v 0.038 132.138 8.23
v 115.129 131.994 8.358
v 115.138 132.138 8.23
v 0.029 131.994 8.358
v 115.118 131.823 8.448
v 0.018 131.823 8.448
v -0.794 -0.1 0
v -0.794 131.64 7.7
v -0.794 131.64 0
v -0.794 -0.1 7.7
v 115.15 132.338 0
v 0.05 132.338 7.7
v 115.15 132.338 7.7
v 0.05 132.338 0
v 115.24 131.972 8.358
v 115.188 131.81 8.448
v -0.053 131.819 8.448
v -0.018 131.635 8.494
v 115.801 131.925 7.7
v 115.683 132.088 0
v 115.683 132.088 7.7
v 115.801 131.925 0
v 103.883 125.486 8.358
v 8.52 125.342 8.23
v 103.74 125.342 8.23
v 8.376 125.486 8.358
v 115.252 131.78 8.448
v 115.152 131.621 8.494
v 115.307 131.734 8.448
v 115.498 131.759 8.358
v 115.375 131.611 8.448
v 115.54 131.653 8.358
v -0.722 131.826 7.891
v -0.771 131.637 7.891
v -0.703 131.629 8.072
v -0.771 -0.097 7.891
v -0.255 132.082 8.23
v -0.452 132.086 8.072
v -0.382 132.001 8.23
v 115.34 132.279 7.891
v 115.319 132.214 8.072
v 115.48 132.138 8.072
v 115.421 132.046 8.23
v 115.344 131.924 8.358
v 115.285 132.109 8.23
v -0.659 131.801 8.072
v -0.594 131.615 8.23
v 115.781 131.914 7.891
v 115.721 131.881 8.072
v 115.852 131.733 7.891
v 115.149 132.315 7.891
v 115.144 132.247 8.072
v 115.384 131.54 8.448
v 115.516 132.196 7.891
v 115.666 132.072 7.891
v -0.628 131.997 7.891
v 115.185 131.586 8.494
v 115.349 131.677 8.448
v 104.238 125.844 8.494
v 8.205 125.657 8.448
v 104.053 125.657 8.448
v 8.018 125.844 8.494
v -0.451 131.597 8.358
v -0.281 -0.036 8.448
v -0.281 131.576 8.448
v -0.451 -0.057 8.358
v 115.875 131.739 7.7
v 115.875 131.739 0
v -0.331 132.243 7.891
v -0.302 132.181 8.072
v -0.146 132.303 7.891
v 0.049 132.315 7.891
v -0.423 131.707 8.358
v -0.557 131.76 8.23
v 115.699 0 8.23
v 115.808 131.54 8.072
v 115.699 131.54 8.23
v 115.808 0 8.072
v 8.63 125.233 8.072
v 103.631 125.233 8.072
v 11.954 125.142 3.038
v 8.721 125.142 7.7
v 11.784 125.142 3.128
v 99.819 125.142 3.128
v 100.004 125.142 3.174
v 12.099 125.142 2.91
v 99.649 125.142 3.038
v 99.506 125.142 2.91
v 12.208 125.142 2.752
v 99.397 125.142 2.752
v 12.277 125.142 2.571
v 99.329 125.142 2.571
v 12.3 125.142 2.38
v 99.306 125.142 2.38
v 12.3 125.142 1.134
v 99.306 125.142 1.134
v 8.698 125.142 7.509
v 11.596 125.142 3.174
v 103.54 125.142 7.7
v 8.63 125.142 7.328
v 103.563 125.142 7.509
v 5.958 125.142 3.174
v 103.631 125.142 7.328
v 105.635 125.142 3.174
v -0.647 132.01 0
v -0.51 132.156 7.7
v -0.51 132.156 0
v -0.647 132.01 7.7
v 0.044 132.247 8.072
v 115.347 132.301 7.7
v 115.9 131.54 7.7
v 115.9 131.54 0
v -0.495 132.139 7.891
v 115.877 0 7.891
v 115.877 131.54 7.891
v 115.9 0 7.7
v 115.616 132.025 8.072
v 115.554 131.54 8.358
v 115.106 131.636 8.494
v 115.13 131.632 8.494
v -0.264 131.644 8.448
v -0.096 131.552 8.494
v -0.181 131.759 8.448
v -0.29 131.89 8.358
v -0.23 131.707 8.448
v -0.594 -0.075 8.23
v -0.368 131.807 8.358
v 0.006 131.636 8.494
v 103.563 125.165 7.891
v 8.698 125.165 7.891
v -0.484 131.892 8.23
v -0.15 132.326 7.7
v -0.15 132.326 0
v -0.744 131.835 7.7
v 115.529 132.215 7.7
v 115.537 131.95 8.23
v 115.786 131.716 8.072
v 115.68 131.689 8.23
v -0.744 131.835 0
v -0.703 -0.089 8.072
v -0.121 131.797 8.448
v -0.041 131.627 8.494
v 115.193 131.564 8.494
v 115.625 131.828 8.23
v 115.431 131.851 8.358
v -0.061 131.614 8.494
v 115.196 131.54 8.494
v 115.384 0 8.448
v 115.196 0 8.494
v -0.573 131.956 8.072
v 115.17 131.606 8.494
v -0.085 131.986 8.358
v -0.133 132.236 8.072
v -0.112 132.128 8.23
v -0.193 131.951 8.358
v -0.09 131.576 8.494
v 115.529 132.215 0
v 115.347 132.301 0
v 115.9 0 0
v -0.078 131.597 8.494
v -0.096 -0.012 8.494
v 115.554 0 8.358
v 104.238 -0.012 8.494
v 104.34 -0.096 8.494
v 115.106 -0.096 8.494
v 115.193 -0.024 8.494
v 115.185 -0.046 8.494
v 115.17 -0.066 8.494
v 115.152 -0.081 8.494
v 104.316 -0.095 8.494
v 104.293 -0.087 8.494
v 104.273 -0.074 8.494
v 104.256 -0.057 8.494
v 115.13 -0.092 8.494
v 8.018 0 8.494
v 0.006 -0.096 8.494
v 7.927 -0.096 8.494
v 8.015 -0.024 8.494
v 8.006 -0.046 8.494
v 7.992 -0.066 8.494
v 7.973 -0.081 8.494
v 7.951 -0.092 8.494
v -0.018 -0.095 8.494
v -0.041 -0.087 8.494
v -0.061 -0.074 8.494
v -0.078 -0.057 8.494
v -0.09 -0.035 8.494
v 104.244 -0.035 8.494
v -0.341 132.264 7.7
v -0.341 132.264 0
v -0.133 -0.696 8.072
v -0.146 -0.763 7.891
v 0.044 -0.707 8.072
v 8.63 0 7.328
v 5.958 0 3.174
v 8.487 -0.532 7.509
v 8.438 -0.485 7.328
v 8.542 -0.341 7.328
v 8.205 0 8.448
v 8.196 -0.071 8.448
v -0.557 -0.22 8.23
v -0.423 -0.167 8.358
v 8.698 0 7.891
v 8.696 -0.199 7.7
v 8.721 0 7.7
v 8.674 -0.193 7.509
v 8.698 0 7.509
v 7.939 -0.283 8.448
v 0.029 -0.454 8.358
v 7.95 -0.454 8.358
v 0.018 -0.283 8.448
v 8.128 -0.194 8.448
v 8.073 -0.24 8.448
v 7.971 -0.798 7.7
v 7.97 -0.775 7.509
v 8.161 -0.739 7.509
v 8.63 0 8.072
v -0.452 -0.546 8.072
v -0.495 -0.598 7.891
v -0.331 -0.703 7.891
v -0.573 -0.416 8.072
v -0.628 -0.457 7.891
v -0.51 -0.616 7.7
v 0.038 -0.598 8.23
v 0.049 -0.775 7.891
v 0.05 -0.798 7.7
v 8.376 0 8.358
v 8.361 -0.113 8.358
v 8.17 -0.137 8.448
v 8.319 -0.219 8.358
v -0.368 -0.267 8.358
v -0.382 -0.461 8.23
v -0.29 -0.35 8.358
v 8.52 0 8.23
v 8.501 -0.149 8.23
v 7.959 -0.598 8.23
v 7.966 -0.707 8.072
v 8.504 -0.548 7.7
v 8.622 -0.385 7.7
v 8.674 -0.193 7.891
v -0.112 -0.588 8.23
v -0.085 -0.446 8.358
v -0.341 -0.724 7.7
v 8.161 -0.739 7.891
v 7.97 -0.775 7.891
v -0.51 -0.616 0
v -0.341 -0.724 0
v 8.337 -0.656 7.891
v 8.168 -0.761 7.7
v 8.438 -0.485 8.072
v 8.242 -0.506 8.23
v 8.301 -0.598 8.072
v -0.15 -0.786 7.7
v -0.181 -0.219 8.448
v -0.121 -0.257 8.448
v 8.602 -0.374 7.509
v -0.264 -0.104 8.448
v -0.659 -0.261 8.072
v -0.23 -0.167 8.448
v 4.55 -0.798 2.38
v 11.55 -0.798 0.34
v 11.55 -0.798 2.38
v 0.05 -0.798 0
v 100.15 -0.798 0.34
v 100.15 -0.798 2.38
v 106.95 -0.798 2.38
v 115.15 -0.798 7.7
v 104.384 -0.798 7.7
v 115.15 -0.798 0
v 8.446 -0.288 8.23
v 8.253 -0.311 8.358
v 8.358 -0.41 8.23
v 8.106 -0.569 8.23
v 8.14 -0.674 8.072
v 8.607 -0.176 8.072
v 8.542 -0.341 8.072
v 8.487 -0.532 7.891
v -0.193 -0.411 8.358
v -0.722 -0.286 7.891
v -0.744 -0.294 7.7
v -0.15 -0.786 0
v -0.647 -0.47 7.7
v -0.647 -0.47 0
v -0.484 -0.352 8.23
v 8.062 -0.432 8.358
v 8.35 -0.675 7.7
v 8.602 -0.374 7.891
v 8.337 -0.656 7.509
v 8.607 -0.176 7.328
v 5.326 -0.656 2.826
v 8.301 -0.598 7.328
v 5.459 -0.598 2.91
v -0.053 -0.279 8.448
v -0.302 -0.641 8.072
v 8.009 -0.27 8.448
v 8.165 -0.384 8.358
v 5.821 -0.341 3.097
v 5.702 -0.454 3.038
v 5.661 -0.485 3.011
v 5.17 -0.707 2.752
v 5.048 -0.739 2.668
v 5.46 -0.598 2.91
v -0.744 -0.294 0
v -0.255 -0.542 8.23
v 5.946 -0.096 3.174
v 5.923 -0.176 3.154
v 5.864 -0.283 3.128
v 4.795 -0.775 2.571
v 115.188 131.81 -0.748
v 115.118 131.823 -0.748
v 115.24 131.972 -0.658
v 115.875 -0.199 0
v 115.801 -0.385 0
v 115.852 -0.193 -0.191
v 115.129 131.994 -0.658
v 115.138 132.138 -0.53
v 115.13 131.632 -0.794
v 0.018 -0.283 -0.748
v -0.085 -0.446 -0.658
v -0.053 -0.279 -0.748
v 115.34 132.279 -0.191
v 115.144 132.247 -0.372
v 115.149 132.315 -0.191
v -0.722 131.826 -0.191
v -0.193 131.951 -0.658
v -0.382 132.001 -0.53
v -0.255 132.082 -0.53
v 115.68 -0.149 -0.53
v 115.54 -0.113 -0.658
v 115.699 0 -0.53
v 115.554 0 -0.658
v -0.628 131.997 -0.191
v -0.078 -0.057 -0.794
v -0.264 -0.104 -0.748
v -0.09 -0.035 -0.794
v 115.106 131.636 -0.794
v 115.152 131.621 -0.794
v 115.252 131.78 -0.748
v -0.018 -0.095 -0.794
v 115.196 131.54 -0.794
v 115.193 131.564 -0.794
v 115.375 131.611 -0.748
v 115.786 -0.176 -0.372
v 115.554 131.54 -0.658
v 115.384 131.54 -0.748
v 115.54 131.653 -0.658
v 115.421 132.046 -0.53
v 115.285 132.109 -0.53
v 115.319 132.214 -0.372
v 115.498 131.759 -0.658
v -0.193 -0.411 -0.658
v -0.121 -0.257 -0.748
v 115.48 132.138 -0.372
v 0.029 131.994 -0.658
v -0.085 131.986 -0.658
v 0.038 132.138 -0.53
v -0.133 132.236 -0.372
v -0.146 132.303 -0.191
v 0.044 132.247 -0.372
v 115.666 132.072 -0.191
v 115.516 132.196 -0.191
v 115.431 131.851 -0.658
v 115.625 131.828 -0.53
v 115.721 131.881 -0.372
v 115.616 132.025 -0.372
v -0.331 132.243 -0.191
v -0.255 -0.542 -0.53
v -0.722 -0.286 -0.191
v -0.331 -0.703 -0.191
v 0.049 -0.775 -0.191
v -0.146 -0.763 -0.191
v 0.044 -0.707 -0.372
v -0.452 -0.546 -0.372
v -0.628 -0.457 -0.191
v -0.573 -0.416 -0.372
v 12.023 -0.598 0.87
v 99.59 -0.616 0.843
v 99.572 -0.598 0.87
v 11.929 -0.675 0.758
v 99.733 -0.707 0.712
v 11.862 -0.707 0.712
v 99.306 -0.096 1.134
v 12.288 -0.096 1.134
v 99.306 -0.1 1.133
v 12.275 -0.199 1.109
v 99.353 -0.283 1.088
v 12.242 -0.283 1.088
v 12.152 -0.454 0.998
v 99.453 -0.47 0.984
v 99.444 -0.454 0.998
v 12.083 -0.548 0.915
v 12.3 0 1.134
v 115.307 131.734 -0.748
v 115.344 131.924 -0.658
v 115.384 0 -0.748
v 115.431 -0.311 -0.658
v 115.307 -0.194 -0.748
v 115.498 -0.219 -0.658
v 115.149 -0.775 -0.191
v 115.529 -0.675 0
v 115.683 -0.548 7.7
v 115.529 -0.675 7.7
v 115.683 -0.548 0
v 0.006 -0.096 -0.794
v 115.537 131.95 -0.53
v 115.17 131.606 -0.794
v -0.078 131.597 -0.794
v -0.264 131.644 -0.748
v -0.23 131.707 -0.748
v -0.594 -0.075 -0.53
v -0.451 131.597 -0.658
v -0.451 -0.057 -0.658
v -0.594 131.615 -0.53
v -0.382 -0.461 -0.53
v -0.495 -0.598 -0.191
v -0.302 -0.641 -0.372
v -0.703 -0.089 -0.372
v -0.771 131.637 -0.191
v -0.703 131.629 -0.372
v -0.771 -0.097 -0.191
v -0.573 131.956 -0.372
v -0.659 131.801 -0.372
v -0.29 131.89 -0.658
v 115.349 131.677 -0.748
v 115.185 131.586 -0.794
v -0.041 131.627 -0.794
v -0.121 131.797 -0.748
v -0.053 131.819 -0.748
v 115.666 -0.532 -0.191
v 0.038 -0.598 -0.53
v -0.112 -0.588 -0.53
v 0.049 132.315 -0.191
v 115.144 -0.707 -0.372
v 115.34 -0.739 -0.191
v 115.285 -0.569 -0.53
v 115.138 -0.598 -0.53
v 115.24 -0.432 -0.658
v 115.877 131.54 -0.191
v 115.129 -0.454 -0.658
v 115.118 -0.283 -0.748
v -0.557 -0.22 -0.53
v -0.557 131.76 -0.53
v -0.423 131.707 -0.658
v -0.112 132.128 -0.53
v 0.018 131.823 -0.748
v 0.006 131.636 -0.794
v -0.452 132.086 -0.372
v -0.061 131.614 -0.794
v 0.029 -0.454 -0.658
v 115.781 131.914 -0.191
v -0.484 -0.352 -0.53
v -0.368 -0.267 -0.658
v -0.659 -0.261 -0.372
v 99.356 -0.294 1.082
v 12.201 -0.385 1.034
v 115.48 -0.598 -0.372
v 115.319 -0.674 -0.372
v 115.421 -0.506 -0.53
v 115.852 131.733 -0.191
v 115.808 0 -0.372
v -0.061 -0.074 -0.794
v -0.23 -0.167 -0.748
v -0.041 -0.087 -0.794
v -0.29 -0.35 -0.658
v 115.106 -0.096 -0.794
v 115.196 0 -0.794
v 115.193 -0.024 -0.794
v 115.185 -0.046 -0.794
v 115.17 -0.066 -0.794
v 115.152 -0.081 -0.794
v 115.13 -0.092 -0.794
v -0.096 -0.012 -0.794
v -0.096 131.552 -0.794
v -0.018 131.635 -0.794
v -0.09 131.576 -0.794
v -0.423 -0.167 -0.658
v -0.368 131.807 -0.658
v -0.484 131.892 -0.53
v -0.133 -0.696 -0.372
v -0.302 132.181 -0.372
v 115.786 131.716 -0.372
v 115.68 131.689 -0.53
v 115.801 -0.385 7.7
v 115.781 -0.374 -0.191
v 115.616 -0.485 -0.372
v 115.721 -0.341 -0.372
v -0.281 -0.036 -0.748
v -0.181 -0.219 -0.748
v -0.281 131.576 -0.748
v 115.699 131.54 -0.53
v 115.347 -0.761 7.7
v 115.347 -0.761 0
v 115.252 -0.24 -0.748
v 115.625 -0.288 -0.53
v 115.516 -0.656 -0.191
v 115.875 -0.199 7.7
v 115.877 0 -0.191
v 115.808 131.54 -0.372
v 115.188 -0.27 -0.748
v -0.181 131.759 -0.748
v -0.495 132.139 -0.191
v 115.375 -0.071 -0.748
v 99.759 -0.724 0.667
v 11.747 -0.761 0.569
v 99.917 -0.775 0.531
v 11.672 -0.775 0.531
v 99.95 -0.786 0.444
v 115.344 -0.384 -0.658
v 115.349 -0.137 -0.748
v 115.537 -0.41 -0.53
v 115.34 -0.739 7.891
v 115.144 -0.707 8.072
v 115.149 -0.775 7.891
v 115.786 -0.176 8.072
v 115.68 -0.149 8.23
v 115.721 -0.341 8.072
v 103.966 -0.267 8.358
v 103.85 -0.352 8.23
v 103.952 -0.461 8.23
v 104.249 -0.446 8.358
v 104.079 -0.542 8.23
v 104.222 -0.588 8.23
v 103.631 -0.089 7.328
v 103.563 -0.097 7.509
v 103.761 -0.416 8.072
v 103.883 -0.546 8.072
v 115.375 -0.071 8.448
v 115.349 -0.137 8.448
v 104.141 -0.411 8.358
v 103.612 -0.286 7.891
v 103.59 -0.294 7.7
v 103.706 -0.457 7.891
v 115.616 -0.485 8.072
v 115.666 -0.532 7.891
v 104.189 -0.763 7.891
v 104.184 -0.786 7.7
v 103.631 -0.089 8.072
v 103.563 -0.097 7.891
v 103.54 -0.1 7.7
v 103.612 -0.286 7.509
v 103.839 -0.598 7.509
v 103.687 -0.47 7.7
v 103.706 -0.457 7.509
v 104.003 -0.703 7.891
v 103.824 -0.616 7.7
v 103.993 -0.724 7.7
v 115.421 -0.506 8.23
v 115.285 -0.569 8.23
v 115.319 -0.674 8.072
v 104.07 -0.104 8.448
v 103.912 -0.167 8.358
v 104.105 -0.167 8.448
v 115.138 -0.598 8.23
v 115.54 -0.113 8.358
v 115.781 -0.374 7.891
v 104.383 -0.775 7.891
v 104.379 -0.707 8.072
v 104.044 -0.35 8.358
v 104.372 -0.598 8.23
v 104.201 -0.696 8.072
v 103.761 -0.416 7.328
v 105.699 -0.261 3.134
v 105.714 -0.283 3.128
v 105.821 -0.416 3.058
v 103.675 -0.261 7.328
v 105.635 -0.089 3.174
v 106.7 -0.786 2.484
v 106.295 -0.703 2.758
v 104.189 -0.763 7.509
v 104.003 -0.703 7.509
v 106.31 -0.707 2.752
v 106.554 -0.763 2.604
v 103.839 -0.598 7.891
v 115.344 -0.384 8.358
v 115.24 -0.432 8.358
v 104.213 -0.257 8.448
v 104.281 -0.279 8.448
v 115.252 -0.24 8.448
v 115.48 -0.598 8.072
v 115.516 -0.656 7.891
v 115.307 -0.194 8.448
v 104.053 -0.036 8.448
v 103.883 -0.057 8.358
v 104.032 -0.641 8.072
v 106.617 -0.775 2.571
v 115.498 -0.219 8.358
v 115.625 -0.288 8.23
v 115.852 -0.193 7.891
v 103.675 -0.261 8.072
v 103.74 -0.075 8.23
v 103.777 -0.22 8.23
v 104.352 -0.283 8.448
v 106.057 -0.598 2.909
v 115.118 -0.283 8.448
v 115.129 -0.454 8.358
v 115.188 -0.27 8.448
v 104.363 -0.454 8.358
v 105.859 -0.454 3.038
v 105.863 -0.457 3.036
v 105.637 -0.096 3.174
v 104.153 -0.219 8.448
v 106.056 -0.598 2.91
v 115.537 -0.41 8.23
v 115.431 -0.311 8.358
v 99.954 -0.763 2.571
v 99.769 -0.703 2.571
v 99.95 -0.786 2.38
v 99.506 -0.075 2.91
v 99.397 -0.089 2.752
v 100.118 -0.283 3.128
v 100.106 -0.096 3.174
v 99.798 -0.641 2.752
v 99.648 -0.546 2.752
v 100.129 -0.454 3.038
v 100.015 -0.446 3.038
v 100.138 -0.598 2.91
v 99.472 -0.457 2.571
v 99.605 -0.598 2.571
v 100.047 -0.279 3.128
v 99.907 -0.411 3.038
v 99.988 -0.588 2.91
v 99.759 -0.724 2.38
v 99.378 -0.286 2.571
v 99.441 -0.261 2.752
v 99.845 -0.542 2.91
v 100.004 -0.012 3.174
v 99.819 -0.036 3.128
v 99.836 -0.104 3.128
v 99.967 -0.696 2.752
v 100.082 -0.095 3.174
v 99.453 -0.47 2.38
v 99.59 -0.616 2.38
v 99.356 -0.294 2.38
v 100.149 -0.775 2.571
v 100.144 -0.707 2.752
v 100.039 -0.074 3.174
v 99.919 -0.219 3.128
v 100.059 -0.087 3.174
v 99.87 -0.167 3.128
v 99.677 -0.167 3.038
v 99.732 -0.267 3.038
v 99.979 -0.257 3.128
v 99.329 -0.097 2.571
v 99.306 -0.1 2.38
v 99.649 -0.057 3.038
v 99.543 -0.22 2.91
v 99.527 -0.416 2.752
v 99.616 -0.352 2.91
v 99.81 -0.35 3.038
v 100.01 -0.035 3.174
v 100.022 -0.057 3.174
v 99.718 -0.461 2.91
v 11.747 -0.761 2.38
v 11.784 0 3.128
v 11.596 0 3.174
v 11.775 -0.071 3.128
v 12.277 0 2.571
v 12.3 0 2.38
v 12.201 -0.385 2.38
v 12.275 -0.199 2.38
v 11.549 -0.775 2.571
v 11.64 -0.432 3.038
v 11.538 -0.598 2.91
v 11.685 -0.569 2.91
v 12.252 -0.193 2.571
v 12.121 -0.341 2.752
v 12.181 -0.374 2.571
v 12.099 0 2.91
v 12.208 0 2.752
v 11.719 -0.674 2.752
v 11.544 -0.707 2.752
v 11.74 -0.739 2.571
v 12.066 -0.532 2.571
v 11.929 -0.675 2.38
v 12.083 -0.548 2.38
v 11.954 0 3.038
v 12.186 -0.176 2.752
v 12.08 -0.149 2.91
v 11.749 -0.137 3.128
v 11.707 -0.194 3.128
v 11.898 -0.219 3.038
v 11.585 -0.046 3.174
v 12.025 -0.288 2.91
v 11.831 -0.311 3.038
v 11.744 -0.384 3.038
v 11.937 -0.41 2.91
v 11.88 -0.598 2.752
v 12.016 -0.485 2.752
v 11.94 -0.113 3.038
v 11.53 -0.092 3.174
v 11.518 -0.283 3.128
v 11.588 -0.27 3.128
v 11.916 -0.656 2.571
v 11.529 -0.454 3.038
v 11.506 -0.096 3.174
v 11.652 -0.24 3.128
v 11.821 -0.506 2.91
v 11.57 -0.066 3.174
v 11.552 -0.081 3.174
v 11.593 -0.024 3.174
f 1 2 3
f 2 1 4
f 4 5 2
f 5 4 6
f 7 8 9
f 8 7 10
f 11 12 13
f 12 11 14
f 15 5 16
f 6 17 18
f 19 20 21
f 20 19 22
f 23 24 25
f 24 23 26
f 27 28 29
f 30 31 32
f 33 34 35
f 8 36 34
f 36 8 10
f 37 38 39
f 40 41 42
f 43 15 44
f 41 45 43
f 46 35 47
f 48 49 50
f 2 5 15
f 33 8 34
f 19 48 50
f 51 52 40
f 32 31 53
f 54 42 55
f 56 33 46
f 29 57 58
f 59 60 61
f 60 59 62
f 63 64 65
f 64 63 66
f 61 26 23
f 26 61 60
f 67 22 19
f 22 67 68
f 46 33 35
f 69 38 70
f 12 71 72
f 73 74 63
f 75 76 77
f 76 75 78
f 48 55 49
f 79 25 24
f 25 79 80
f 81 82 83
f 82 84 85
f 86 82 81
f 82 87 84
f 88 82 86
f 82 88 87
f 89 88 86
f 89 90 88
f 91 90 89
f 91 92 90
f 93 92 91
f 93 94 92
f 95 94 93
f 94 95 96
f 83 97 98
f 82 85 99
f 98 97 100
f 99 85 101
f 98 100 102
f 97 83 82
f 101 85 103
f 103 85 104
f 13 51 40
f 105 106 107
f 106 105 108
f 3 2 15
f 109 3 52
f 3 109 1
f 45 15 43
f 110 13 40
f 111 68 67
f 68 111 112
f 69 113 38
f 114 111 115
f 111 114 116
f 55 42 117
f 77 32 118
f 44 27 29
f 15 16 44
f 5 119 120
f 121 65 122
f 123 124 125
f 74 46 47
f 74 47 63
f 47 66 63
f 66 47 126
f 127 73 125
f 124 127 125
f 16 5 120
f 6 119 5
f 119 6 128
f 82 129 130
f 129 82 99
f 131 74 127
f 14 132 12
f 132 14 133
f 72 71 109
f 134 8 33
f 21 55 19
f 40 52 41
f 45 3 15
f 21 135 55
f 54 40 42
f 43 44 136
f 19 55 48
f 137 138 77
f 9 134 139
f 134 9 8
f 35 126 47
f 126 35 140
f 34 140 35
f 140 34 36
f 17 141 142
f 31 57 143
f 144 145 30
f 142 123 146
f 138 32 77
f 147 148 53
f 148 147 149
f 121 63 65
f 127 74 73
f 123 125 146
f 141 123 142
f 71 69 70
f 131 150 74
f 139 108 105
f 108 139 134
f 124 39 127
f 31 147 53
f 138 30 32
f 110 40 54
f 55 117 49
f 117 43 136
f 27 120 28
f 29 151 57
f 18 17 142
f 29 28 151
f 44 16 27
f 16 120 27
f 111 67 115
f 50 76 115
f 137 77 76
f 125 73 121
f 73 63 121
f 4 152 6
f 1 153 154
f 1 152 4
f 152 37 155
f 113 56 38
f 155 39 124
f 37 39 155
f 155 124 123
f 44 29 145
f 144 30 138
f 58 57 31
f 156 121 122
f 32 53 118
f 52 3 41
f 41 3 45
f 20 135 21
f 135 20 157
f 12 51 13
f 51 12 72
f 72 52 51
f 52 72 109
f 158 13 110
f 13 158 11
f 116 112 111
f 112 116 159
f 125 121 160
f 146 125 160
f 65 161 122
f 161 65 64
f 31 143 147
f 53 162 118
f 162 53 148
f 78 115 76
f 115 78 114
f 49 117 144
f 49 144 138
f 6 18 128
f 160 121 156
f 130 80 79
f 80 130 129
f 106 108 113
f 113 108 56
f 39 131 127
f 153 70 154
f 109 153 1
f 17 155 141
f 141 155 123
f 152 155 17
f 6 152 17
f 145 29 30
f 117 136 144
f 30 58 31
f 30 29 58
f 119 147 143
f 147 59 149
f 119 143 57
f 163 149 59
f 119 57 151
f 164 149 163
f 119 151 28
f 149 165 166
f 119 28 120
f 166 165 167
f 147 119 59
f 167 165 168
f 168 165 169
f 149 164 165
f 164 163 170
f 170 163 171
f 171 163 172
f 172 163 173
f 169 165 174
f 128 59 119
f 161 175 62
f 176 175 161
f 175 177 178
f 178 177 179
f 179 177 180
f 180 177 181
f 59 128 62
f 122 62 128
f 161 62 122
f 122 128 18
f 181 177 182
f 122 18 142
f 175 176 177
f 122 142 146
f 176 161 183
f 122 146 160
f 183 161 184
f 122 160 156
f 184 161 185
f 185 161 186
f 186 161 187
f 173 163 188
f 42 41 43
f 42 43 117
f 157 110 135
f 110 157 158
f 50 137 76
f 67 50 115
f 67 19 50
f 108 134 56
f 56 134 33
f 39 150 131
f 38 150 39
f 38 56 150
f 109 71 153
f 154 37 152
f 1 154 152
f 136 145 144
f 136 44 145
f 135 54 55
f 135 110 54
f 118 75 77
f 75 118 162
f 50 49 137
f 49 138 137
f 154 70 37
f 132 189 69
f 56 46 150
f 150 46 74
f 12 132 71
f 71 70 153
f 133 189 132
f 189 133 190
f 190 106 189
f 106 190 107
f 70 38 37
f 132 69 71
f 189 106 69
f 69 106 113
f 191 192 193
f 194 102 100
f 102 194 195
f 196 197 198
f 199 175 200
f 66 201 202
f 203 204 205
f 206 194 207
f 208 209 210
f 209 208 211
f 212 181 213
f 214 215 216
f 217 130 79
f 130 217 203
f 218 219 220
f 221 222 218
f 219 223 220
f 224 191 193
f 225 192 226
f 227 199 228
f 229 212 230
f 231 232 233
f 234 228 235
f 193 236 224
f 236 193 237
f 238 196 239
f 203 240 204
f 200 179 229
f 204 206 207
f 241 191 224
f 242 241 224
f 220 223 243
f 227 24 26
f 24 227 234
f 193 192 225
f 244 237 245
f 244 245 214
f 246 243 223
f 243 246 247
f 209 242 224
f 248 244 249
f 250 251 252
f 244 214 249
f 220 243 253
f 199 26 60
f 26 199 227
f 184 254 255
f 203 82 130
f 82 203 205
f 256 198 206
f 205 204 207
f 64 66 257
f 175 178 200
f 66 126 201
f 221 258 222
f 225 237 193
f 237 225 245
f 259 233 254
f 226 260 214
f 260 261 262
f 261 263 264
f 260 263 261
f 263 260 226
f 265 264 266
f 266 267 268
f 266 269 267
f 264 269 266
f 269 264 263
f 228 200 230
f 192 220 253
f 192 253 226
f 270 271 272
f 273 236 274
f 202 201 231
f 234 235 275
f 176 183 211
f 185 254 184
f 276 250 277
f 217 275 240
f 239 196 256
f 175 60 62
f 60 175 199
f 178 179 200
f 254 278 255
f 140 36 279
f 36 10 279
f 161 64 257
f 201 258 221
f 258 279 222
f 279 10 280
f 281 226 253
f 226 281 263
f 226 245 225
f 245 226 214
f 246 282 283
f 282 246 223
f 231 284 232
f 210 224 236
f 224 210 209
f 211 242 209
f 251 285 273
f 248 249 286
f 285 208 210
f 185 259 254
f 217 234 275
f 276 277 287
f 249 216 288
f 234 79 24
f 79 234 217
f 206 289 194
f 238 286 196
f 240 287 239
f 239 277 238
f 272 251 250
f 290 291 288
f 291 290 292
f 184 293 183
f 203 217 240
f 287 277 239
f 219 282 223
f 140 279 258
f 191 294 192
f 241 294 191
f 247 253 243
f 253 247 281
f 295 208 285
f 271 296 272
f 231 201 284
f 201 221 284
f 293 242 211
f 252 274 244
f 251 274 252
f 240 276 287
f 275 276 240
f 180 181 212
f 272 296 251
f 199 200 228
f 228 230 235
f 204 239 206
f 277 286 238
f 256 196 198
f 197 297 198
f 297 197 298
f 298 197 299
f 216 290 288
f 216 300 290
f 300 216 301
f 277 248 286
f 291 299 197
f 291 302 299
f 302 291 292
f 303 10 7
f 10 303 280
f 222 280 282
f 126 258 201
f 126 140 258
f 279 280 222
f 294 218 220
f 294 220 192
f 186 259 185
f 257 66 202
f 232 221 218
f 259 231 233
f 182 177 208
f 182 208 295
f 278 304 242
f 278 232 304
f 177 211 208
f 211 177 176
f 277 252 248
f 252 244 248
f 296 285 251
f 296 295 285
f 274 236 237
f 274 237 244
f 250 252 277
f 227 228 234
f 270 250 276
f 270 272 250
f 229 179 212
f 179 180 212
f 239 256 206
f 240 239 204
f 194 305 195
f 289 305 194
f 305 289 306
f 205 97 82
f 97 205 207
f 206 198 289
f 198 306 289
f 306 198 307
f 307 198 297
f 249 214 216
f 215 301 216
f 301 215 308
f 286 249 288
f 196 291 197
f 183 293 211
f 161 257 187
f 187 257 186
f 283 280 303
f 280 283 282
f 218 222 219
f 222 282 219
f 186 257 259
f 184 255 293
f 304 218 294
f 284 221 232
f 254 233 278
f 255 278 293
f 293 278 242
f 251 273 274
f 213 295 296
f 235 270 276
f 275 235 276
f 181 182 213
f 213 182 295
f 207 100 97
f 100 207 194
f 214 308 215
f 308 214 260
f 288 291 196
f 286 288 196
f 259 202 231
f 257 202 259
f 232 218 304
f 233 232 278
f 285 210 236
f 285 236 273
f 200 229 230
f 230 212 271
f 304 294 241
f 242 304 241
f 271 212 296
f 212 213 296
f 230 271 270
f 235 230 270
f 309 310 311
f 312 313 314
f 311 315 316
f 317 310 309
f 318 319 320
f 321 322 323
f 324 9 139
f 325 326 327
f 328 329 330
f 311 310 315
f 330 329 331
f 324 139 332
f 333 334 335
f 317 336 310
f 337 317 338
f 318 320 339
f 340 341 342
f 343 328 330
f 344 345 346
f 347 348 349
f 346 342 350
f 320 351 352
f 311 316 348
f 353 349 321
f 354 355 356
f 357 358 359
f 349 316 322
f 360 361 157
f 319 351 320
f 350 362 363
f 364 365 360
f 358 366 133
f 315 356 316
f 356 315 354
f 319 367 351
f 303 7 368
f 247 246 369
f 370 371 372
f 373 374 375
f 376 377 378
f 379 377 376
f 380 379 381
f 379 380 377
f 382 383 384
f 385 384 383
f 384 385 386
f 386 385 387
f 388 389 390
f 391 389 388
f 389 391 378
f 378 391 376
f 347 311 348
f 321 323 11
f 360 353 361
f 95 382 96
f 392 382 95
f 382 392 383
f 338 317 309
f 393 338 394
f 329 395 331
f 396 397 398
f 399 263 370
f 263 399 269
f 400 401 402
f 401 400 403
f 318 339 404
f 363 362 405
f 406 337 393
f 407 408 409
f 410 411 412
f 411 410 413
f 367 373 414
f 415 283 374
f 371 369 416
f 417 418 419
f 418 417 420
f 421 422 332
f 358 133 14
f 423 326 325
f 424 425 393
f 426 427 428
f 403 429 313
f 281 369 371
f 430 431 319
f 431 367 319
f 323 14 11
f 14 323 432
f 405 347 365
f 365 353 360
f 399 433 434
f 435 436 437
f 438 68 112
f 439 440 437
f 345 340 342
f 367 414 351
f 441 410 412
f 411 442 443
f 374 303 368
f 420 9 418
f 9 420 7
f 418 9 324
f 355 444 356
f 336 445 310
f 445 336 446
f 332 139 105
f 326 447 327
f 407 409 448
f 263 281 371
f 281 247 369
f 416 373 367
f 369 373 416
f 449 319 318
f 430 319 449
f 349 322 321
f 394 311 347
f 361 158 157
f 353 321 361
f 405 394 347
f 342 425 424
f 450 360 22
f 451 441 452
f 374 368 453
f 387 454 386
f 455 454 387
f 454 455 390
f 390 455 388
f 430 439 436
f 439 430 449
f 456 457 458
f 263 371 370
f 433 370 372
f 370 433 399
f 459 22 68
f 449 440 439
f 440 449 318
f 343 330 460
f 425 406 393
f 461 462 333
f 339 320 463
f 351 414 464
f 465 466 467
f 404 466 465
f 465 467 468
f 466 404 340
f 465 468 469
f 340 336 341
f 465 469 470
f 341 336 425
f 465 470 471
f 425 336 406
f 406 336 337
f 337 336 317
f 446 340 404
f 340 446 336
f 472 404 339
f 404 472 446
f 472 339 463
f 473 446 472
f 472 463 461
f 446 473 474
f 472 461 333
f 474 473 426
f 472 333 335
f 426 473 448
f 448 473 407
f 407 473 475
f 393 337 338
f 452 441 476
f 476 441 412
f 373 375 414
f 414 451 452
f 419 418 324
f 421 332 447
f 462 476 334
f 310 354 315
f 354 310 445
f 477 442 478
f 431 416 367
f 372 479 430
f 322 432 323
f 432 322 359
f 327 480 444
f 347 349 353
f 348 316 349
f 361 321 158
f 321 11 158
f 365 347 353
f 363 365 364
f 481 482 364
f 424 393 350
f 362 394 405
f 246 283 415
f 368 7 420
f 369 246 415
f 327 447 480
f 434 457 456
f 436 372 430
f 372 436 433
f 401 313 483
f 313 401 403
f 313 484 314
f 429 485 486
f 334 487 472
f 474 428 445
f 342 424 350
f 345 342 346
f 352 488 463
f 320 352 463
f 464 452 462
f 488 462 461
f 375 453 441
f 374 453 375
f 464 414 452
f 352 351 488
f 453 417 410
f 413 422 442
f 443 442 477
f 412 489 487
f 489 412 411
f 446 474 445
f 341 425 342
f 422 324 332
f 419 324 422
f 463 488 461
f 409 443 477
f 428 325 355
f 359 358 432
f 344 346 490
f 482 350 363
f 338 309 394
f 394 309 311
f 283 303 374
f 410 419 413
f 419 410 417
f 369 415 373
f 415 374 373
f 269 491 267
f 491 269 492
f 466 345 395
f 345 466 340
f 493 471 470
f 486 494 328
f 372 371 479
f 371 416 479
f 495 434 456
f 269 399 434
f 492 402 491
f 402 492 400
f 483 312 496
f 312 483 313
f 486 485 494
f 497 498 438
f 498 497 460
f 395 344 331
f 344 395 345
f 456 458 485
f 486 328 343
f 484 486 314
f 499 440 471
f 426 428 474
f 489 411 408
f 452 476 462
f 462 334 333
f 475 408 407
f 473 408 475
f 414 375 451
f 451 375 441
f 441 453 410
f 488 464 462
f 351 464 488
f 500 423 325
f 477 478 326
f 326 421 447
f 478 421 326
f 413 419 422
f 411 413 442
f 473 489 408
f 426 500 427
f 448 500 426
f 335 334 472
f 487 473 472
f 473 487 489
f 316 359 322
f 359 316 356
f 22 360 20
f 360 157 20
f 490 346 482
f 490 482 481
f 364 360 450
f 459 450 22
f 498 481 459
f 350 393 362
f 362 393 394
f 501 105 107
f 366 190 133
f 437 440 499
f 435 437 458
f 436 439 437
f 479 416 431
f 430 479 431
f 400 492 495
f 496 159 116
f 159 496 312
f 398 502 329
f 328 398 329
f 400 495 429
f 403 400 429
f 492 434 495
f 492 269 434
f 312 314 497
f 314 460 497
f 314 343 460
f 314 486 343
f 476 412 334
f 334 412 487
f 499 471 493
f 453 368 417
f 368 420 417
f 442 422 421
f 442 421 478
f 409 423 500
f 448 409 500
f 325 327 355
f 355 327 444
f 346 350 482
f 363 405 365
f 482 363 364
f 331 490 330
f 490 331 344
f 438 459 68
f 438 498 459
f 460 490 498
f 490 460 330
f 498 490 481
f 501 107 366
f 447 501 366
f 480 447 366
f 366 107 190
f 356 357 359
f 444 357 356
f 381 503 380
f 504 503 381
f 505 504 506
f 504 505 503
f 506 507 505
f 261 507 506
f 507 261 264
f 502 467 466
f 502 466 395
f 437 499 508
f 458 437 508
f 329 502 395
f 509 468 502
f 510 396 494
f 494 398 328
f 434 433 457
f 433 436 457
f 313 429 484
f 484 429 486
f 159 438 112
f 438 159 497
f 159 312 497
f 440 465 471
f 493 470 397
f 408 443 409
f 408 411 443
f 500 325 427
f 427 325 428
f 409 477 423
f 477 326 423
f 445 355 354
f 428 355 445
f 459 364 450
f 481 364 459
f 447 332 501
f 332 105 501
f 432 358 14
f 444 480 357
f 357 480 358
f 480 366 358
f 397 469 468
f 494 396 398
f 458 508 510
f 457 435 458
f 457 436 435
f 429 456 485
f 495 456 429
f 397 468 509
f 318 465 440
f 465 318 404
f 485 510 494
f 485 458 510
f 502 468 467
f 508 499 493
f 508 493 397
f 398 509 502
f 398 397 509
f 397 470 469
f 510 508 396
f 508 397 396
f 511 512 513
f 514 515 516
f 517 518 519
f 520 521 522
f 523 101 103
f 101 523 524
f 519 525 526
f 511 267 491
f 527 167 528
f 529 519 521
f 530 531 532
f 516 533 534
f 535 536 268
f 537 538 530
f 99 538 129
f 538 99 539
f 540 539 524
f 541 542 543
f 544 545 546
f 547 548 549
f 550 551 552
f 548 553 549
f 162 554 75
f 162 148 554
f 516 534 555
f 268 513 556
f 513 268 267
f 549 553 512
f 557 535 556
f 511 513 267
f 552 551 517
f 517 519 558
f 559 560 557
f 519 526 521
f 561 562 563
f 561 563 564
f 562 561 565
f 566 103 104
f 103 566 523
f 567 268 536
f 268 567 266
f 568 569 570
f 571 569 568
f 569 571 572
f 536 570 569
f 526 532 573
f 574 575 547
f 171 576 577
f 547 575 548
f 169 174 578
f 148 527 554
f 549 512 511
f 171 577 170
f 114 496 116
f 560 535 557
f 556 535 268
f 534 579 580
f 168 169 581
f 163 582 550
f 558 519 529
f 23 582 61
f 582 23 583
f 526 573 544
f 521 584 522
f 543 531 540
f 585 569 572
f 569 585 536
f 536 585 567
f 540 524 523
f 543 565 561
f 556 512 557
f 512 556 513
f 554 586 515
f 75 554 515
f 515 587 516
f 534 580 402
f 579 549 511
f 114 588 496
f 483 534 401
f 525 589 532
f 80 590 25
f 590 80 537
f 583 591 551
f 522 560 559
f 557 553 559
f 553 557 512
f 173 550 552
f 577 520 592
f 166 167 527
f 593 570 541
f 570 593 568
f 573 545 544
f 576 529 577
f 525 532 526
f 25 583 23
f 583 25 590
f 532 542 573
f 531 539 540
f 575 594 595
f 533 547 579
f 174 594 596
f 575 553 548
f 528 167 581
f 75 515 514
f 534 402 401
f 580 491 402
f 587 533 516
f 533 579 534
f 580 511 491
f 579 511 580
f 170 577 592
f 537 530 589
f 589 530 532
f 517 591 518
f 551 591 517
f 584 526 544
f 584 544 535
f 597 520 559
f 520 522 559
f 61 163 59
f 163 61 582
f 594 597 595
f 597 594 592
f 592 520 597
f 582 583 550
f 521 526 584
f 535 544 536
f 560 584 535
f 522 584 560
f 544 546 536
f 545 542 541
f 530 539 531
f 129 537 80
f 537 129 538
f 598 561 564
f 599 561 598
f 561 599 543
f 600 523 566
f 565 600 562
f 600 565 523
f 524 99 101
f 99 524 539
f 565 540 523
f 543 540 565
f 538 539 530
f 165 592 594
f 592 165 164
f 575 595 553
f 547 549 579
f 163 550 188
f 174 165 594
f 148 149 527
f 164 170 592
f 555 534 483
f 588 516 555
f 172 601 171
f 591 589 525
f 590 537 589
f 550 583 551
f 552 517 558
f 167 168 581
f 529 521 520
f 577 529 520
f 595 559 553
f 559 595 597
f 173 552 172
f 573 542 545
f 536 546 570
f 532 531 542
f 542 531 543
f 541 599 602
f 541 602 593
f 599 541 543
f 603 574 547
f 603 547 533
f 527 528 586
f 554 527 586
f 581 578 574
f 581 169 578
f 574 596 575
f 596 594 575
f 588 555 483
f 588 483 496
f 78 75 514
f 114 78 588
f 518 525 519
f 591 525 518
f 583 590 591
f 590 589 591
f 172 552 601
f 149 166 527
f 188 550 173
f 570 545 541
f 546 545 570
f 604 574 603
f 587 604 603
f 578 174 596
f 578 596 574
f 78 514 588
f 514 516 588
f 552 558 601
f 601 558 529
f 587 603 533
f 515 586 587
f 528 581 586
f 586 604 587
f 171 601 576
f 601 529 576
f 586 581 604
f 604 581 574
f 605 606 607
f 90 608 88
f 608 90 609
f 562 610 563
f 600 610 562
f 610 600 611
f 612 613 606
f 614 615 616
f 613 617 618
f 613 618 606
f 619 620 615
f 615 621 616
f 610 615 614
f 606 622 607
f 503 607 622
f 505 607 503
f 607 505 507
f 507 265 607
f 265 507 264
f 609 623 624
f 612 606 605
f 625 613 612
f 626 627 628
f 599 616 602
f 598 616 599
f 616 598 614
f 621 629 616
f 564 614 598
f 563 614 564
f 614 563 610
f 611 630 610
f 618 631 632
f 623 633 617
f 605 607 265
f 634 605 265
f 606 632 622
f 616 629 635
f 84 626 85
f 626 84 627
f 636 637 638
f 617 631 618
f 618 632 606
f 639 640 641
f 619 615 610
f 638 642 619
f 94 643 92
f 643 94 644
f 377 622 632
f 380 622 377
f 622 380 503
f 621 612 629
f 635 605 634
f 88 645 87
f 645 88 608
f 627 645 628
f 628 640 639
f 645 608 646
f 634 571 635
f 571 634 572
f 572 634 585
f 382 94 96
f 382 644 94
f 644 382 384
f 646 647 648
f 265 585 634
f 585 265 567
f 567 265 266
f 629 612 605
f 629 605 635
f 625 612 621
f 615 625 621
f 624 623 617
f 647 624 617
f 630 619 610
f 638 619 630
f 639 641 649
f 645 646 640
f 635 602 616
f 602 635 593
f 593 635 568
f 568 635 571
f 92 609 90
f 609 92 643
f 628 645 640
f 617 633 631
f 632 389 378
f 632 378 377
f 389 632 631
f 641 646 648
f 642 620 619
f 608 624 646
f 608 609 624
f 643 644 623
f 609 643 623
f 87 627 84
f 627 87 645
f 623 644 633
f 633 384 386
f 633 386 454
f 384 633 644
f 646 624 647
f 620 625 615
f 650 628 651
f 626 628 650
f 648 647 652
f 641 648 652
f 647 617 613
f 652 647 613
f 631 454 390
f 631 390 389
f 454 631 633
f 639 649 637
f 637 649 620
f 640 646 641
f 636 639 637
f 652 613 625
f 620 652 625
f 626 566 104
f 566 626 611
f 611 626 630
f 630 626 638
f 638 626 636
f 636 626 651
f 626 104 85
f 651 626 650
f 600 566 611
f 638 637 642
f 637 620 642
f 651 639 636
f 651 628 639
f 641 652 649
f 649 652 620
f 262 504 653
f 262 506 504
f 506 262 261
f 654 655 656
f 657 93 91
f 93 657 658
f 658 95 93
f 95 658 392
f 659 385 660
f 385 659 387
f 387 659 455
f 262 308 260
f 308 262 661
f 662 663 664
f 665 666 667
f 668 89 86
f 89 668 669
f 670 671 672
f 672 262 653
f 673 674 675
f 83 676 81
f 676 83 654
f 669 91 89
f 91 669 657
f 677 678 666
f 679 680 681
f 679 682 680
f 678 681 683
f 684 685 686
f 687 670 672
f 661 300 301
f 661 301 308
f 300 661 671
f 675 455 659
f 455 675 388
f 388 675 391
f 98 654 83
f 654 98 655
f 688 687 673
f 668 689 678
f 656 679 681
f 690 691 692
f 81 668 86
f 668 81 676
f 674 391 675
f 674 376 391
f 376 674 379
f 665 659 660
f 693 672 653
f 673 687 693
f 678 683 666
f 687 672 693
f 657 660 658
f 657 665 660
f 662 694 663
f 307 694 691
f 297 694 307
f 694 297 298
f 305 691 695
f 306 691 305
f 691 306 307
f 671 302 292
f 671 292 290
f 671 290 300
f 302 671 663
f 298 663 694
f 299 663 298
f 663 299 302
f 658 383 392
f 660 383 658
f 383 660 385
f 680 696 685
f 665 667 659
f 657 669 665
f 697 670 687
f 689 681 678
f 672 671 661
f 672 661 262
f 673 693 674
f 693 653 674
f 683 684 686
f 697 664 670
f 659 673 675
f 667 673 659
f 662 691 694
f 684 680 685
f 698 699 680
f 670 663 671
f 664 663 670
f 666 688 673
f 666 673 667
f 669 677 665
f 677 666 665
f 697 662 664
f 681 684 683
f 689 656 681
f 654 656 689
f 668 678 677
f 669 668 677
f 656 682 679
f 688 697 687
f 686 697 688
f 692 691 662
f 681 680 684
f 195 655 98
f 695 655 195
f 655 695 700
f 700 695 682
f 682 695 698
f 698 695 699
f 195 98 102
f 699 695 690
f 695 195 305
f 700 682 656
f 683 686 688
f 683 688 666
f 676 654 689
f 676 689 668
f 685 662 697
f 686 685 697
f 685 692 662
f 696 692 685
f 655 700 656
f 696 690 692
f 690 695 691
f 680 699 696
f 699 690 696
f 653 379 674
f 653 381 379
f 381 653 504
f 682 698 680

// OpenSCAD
spherulation = 0.8;

width=97;
width_spheruled = width + 2*spherulation;
height=120.54;
margins = 5.5;
cut_in_margins = 3;
lip_depth=1;
board_depth=1.54;
cut_margin=0.1;
depth_holder = 5*board_depth;

module board(margins) {
    color("red") translate([2*margins-2.5,0,2.5*board_depth-spherulation]) cube([width,height, board_depth]);
}


module prismatic_cut(margins) {
    translate([0,height+margins-0.1,0]) rotate([90,0,0]) linear_extrude(height+margins+10) {
        polygon(points=[
        [-1,0], 
        [width_spheruled+spherulation+2,0],
        [width_spheruled+spherulation-1,3*board_depth+2*spherulation],
        [3, 3*board_depth+2*spherulation],
        [-1,0]]);
    }
}

module holder(margins) {
    difference() {
     cube([width_spheruled+3*margins, height+2*margins, depth_holder]);
       translate([margins,0,2*board_depth-spherulation+cut_margin]) prismatic_cut(margins);
        // for solder joints
        translate([margins+1+5, -0.1, 1*board_depth-1.5*spherulation]) cube([width_spheruled-10,height+1*margins, 2*spherulation+board_depth*2]);
     
    }
}


//board();
module rounded(margins) {
    minkowski() {
      holder(margins);
      sphere(spherulation, $fn=25);
    }
}


module test() {
    for (margins=[2:0.5:5]) {
           rotate([90,0,0]) translate([0,margins*30,0]) {
               difference() { 
                   rounded(margins);
                   translate([50,0,0]) linear_extrude(1.2) text(str(margins), size=3);
                   translate([-10,3,-10]) cube([1000,1000,100]);
               }
           }
        }
}

rounded(margins);
//test();
//prismatic_cut();
